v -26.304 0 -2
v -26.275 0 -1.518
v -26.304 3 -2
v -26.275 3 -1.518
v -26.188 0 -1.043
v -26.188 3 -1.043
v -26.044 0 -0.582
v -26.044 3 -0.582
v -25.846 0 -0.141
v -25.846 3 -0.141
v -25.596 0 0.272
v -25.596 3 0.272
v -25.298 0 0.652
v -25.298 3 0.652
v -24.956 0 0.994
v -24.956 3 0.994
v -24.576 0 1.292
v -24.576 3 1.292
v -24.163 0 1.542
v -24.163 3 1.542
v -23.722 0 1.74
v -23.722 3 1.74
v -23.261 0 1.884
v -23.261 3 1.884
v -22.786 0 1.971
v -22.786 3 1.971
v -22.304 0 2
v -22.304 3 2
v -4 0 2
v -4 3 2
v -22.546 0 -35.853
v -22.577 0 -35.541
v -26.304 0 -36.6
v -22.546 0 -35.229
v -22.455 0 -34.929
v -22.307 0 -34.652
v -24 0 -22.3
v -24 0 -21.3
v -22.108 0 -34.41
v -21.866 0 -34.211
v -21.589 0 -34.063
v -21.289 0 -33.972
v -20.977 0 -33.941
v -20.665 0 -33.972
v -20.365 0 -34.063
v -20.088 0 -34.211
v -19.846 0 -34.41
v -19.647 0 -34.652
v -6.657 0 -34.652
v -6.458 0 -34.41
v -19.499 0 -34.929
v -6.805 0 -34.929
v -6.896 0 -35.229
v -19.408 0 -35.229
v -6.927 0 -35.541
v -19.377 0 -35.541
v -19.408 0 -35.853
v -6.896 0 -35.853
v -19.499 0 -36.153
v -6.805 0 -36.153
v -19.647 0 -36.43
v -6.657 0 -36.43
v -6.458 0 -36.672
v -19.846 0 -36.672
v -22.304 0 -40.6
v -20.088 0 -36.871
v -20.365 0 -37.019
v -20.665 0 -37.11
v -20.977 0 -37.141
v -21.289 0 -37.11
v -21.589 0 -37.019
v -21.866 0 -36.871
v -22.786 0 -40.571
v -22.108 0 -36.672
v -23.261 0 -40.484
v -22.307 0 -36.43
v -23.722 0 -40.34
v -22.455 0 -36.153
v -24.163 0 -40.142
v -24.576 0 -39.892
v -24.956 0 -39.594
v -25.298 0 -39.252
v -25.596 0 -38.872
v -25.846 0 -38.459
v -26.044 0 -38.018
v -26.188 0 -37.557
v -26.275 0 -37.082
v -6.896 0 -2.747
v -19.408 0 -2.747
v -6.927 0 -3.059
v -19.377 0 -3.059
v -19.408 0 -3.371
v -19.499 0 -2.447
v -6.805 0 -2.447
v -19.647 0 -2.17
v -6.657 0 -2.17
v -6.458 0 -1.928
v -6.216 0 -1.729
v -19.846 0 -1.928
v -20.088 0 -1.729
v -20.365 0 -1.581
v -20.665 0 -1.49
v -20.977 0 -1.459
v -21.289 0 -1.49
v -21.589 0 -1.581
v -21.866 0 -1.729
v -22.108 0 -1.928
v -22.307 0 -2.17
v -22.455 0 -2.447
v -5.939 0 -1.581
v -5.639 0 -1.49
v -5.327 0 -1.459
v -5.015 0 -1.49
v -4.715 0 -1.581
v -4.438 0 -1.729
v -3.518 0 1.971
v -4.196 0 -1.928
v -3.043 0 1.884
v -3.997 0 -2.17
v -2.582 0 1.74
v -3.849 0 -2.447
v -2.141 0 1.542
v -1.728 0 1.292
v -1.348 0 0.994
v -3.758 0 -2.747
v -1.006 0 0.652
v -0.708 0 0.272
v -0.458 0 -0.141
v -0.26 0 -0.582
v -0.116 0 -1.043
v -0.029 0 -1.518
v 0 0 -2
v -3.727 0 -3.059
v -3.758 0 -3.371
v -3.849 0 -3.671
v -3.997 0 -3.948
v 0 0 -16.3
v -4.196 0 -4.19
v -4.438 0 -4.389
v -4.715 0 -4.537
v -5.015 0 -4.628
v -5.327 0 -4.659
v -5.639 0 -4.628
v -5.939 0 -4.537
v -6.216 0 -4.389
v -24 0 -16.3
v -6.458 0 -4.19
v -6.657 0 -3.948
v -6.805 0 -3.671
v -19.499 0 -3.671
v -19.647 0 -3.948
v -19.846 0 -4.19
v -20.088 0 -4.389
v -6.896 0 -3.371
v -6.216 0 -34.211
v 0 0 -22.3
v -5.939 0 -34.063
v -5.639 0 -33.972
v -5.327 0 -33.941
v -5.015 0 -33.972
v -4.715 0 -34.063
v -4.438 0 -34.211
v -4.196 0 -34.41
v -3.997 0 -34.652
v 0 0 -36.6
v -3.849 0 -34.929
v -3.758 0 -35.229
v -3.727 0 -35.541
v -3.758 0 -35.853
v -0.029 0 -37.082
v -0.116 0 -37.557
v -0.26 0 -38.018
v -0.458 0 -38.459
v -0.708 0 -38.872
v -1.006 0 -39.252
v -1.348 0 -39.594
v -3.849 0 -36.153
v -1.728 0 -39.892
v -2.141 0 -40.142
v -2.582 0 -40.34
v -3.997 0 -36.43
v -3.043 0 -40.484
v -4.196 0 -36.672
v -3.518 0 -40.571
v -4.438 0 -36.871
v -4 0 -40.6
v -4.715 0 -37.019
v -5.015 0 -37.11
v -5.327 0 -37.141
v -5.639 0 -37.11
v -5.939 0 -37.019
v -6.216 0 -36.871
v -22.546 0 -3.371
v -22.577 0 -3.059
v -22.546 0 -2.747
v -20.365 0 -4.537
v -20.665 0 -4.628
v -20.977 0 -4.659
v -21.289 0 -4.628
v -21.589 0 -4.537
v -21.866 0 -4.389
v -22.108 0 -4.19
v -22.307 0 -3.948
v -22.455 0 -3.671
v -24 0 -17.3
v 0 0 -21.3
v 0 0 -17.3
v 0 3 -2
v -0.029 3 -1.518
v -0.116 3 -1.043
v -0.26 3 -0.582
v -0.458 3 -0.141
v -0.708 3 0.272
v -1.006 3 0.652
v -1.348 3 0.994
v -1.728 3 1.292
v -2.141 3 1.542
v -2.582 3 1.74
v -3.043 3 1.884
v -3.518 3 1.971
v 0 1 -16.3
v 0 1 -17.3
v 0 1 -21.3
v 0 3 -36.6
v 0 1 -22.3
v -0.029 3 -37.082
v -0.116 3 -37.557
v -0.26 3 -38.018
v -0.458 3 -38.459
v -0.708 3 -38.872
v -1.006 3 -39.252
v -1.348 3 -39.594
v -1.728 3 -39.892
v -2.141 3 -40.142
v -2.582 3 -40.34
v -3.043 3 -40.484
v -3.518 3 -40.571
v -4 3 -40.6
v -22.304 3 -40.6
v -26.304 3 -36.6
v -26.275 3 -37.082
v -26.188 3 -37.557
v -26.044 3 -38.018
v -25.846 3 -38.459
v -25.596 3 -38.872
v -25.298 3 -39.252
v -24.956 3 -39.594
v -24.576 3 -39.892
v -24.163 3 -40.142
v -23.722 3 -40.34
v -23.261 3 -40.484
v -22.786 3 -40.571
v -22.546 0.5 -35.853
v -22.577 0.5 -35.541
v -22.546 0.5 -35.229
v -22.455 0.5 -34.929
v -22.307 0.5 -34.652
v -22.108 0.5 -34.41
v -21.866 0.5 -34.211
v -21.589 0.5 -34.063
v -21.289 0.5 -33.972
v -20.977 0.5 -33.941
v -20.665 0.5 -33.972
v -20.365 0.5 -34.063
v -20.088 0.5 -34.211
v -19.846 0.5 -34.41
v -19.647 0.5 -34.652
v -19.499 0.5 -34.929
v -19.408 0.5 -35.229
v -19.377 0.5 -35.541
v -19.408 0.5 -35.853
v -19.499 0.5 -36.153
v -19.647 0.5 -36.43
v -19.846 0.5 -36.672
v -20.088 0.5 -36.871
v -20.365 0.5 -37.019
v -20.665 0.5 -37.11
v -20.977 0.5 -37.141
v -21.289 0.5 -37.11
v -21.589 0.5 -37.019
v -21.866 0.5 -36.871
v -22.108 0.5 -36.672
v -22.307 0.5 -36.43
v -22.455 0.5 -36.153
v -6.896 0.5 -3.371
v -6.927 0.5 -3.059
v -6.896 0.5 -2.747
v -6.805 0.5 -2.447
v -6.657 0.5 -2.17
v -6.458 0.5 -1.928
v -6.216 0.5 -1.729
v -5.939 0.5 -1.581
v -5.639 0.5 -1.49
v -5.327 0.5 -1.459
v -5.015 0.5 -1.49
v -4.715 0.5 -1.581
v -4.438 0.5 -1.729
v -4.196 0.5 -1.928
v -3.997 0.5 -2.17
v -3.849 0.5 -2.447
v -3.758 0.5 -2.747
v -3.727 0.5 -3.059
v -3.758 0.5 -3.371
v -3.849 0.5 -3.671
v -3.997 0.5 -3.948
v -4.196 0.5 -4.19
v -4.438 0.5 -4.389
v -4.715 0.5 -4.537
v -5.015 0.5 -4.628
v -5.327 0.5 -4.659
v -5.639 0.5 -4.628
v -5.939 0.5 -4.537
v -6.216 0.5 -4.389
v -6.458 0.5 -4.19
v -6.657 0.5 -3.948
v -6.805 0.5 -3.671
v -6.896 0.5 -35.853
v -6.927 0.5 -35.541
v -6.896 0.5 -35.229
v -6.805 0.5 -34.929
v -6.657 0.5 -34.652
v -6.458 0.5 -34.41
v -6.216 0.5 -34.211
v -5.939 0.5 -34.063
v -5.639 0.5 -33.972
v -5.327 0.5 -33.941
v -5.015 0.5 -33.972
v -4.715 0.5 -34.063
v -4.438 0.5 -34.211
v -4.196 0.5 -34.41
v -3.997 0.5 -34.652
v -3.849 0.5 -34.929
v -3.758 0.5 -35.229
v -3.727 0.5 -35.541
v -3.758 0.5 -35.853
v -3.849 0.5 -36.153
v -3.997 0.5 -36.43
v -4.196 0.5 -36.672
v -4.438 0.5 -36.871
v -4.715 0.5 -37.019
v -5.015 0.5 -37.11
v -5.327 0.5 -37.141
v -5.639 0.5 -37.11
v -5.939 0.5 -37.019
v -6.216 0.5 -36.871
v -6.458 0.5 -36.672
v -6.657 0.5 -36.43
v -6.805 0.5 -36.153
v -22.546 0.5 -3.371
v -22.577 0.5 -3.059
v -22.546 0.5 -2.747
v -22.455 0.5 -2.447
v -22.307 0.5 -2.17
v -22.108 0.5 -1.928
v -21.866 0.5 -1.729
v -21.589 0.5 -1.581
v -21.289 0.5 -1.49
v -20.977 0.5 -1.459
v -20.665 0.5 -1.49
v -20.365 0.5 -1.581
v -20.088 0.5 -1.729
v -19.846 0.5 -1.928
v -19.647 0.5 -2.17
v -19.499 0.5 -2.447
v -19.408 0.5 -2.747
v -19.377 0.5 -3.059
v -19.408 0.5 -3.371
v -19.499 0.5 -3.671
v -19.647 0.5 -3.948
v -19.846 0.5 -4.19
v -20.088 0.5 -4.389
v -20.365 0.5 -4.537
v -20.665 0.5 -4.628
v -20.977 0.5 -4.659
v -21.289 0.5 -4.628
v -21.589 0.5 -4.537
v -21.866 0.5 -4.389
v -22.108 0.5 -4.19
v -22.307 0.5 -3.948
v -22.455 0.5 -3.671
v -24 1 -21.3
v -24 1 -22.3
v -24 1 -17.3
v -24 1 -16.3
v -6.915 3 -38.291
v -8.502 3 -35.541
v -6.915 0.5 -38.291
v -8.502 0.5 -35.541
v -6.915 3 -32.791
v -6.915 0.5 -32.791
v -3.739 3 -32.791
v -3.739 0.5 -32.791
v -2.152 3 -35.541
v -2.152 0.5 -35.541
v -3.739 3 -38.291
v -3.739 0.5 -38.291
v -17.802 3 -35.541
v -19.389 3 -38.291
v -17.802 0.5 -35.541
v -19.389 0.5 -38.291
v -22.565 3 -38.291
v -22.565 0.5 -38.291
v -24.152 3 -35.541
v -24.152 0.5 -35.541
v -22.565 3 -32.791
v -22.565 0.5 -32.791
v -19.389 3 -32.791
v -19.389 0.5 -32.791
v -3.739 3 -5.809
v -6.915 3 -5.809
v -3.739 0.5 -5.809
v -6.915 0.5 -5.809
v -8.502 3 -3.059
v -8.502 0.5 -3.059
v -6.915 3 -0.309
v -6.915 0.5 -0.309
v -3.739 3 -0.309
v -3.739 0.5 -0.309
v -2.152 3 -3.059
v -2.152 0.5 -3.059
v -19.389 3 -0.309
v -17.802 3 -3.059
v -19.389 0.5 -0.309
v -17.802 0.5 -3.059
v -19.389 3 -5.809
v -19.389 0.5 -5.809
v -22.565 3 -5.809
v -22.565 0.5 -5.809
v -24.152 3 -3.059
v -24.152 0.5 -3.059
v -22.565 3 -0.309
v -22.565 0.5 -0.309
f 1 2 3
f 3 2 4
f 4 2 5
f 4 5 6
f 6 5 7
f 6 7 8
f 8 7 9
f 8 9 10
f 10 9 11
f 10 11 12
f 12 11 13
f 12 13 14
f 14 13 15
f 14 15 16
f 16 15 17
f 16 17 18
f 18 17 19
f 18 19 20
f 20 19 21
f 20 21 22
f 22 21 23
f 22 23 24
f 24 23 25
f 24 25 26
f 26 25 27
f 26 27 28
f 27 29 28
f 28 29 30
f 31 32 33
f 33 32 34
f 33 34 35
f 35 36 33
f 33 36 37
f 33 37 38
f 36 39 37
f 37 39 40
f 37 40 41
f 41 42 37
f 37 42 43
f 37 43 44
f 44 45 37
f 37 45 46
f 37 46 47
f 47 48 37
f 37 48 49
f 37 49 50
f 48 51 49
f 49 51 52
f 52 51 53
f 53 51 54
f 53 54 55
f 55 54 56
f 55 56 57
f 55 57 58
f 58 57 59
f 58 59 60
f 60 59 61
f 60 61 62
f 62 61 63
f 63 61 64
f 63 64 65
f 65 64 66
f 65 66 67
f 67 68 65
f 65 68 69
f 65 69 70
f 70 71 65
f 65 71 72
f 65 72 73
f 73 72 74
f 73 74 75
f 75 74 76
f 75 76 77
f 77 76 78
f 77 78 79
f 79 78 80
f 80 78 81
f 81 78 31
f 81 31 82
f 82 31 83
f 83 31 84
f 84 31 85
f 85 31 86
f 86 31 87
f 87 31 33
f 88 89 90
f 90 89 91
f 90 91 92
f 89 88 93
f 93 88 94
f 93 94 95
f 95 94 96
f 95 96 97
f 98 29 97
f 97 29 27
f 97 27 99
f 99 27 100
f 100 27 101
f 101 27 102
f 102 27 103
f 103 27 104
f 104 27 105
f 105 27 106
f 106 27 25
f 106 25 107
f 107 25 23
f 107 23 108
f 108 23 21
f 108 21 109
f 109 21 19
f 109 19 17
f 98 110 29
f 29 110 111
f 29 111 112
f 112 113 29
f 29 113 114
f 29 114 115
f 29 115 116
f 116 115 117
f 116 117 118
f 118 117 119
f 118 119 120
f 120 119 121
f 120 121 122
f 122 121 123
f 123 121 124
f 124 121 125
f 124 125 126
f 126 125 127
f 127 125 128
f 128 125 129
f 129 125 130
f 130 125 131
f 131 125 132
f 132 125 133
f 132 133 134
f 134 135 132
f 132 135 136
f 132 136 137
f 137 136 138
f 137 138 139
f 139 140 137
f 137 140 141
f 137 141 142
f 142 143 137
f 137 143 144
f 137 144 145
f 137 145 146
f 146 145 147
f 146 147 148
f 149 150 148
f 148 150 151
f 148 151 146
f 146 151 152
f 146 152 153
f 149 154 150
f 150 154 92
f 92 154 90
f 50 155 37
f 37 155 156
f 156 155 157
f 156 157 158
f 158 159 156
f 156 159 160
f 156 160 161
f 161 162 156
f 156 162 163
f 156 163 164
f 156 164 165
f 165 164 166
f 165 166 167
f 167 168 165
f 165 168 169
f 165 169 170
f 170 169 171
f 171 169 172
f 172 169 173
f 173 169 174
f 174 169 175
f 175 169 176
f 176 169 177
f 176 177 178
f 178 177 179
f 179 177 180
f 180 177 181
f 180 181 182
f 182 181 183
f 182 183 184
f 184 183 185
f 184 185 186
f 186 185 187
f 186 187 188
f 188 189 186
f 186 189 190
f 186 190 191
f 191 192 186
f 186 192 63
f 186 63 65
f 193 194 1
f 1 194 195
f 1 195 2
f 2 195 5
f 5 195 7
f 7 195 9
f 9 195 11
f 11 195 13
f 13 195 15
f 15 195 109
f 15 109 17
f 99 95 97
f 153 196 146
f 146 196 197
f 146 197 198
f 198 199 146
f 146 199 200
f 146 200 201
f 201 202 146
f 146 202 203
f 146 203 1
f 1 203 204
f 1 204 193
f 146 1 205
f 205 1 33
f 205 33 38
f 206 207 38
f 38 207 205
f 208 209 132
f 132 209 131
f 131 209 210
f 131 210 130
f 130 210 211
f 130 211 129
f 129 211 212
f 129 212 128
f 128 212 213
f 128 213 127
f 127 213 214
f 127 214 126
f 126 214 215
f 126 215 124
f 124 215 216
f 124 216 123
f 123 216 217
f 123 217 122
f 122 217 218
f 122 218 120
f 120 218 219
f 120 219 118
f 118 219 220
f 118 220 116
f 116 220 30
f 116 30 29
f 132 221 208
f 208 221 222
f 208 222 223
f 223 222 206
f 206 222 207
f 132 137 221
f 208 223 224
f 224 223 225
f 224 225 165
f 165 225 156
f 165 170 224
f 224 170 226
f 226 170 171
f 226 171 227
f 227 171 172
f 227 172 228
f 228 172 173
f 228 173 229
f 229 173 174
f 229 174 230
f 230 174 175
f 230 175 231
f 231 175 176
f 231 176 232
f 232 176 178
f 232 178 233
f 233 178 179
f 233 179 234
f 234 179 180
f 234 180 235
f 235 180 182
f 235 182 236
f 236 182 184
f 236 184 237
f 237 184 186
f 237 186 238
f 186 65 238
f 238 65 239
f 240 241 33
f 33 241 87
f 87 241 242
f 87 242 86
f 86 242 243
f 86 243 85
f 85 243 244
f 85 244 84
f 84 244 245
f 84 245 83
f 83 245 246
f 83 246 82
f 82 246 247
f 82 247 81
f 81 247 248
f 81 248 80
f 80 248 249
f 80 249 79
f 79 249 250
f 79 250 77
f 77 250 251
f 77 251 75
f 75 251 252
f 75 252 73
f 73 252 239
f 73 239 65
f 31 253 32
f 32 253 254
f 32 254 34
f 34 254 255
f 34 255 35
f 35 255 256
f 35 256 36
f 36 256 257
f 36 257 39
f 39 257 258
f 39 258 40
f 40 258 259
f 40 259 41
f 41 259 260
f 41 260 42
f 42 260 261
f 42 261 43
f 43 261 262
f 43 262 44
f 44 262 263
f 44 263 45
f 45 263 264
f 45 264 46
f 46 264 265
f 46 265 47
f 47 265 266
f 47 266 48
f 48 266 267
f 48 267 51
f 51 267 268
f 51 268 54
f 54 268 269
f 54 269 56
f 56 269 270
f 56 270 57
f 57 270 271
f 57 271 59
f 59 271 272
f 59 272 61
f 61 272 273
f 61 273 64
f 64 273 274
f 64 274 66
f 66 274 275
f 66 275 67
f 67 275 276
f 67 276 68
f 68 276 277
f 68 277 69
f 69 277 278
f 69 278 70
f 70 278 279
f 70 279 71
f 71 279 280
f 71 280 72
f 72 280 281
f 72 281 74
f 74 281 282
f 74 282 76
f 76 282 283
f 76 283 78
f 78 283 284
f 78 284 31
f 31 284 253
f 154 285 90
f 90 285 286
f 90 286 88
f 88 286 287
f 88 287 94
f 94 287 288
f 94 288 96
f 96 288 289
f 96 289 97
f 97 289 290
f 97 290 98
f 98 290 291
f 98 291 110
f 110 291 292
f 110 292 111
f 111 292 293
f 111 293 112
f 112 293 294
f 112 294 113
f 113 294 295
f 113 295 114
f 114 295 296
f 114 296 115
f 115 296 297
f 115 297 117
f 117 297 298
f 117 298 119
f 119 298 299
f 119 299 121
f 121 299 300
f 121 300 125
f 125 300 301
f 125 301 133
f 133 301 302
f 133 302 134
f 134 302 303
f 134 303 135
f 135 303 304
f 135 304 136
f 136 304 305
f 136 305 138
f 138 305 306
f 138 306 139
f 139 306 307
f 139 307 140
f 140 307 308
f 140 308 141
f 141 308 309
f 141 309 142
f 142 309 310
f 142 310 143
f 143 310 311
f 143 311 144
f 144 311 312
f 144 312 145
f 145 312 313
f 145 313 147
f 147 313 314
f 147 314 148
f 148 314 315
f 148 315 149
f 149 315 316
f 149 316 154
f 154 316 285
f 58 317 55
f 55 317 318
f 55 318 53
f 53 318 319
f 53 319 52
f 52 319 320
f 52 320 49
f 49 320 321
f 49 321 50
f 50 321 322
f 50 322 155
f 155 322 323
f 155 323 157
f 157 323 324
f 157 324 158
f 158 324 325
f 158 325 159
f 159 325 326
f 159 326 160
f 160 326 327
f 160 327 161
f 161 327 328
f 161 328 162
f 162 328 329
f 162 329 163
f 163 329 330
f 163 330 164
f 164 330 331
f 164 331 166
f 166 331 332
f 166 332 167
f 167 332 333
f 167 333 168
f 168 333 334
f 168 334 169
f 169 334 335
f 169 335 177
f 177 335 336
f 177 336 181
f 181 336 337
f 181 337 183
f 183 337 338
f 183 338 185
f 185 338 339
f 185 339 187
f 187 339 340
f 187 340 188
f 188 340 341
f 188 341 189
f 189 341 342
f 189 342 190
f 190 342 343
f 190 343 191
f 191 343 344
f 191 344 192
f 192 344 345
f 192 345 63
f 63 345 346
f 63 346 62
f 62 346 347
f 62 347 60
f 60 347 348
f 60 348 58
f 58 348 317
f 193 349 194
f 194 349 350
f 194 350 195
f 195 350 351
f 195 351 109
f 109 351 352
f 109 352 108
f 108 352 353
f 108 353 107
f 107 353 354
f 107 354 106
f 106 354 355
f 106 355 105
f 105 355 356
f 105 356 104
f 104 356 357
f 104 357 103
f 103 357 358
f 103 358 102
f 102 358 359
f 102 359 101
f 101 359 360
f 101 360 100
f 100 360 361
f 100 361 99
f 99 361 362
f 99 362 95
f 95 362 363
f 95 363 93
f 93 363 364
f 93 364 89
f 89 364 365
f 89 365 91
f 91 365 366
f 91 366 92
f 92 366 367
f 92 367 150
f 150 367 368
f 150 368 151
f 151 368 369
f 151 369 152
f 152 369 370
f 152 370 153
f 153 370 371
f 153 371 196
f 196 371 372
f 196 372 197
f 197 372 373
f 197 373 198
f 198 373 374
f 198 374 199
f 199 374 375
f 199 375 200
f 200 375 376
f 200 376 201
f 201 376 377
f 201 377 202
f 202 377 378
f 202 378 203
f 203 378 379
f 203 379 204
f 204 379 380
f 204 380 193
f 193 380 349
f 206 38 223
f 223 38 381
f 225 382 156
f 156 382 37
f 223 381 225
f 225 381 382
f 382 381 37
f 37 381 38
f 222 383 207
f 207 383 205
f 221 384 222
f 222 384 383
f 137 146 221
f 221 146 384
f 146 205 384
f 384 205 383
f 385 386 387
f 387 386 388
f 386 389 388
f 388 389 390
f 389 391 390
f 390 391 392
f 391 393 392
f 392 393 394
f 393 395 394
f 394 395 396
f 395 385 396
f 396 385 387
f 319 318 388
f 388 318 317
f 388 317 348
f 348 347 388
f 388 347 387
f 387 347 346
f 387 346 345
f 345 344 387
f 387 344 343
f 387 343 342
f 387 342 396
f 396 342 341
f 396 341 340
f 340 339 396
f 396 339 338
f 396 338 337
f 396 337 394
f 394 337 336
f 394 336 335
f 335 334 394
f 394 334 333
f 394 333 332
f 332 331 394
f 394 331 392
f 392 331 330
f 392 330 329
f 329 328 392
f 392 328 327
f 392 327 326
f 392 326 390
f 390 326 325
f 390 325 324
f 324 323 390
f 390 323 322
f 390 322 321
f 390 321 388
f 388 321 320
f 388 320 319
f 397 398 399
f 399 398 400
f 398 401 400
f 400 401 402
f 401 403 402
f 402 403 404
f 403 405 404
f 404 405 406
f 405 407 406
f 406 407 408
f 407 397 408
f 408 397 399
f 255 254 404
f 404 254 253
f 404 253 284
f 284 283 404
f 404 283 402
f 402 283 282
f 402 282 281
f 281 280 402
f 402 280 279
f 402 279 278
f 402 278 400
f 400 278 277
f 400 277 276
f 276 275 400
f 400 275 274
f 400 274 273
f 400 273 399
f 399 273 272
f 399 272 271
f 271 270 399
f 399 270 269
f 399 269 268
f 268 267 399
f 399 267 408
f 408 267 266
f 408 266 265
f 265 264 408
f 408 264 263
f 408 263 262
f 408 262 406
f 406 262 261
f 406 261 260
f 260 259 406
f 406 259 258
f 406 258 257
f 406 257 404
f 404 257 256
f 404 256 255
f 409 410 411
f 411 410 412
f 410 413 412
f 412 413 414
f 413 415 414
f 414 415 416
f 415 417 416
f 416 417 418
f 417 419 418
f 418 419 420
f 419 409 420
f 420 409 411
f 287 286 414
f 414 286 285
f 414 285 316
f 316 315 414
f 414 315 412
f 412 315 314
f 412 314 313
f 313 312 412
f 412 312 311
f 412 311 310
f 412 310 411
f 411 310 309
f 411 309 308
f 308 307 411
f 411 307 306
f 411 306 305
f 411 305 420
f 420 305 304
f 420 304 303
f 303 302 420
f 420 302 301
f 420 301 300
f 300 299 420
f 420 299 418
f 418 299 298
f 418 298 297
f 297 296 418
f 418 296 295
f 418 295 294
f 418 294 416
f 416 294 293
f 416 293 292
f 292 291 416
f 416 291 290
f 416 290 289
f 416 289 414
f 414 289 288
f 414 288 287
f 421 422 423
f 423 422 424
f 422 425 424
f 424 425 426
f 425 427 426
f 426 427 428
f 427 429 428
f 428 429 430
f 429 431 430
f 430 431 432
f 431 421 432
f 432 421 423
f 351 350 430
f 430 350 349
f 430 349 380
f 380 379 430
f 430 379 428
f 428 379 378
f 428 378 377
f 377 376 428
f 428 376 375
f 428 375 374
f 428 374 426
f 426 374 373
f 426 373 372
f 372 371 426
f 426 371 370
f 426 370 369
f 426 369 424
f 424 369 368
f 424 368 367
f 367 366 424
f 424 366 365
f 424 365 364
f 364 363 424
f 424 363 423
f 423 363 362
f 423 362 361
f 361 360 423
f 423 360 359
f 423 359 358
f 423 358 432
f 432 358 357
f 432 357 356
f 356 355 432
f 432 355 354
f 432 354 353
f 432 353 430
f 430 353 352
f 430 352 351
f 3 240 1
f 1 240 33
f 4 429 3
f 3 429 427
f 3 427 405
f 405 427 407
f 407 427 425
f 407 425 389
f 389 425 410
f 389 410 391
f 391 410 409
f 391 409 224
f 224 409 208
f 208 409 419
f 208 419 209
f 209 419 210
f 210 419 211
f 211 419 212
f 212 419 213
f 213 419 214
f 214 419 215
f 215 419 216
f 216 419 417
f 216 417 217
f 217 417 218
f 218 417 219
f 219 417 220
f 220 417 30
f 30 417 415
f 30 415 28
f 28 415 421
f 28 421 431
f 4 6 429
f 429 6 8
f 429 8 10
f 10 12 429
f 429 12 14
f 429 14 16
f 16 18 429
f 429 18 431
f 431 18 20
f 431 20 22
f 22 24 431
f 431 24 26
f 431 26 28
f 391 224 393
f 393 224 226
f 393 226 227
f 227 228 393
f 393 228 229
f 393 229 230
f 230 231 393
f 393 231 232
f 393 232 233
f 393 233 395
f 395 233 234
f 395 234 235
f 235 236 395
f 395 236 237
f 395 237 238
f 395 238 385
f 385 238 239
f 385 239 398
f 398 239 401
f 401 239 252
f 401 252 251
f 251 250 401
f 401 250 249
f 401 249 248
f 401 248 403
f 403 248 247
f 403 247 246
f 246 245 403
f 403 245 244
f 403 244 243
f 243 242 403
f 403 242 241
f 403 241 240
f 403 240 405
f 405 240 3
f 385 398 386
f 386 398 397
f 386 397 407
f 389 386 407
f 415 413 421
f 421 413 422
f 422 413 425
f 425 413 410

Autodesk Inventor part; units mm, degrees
ref_plane "YZ Plane" through (0, 0, 0) normal (1, 0, 0) x (0, 1, 0)
ref_plane "XZ Plane" through (0, 0, 0) normal (0, 1, 0) x (-1, 0, 0)
ref_plane "XY Plane" through (0, 0, 0) normal (0, 0, 1) x (1, 0, 0)
sketch "Sketch1" plane through (0, 0, 0) normal (0, 1, 0) x (-1, 0, 0)
  line L0 (0, 0) -> (26.304, 0)
  line L1 (26.304, 0) -> (26.304, -38.6)
  line L2 (26.304, -38.6) -> (0, -38.6)
  line L3 (0, -38.6) -> (0, 0)
  dimension "d0" = 38.6
  dimension "d1" = 26.304
extrude "Extrusion1" add sketch "Sketch1" along normal blind 3
sketch "Sketch2" plane through (0, 3, 0) normal (0, 1, 0) x (1, 0, 0)
  line L0 (-19.3893, 5.809) -> (-17.8016, 3.059)
  line L1 (-17.8016, 3.059) -> (-19.3893, 0.309)
  line L2 (-19.3893, 0.309) -> (-22.5647, 0.309)
  line L3 (-22.5647, 0.309) -> (-24.1524, 3.059)
  line L4 (-24.1524, 3.059) -> (-22.5647, 5.809)
  line L5 (-22.5647, 5.809) -> (-19.3893, 5.809)
  line L6 (-19.3893, 38.291) -> (-17.8016, 35.541)
  line L7 (-17.8016, 35.541) -> (-19.3893, 32.791)
  line L8 (-19.3893, 32.791) -> (-22.5647, 32.791)
  line L9 (-22.5647, 32.791) -> (-24.1524, 35.541)
  line L10 (-24.1524, 35.541) -> (-22.5647, 38.291)
  line L11 (-22.5647, 38.291) -> (-19.3893, 38.291)
  line L12 (-3.7393, 5.809) -> (-2.1516, 3.059)
  line L13 (-2.1516, 3.059) -> (-3.7393, 0.309)
  line L14 (-3.7393, 0.309) -> (-6.9147, 0.309)
  line L15 (-6.9147, 0.309) -> (-8.5024, 3.059)
  line L16 (-8.5024, 3.059) -> (-6.9147, 5.809)
  line L17 (-6.9147, 5.809) -> (-3.7393, 5.809)
  line L18 (-3.7393, 38.291) -> (-2.1516, 35.541)
  line L19 (-2.1516, 35.541) -> (-3.7393, 32.791)
  line L20 (-3.7393, 32.791) -> (-6.9147, 32.791)
  line L21 (-6.9147, 32.791) -> (-8.5024, 35.541)
  line L22 (-8.5024, 35.541) -> (-6.9147, 38.291)
  line L23 (-6.9147, 38.291) -> (-3.7393, 38.291)
  line L24 (-26.304, 0) -> (0, 0) projected
  line L25 (0, 38.6) -> (-26.304, 38.6) projected
  line L26 (0, 0) -> (0, 38.6) projected
  point P0 (-20.977, 3.059)
  point P1 (-20.977, 35.541)
  point P2 (-5.327, 3.059)
  point P3 (-5.327, 35.541)
  dimension "d4" = 5.5
  dimension "d6" = 5.5
  dimension "d7" = 5.5
  dimension "d8" = 5.5
  dimension "d9" = 32.482
  dimension "d10" = 32.482
  dimension "d11" = 15.65
  dimension "d12" = 0
  dimension "d13" = 0
  dimension "d14" = 3.059
  dimension "d15" = 5.327
  dimension "d16" = 15.65
extrude "Extrusion2" cut sketch "Sketch2" against normal blind 2.5
sketch "Sketch3" plane through (0, 0, 0) normal (1, 0, 0) x (0, 0, -1)
  line L0 (16.3, 1) -> (17.3, 1)
  line L1 (17.3, 1) -> (17.3, 0)
  line L2 (17.3, 0) -> (16.3, 0)
  line L3 (16.3, 0) -> (16.3, 1)
  line L4 (21.3, 1) -> (22.3, 1)
  line L5 (22.3, 1) -> (22.3, 0)
  line L6 (22.3, 0) -> (21.3, 0)
  line L7 (21.3, 0) -> (21.3, 1)
  line L8 (0, 0) -> (38.6, 0) projected
  line L9 (0, 0) -> (0, 3) projected
  dimension "d19" = 1
  dimension "d20" = 1
  dimension "d21" = 1
  dimension "d22" = 4
  dimension "d23" = 16.3
extrude "Extrusion3" cut sketch "Sketch3" against normal blind 24
sketch "Sketch4" plane through (0, 3, 0) normal (0, 1, 0) x (1, 0, 0)
  circle A0 centre (-20.977, 3.059) radius 1.6
  circle A1 centre (-20.977, 35.541) radius 1.6
  circle A2 centre (-5.327, 35.541) radius 1.6
  circle A3 centre (-5.327, 3.059) radius 1.6
  line L0 (-19.3893, 0.309) -> (-22.5647, 0.309) projected
  line L1 (-3.7393, 0.309) -> (-6.9147, 0.309) projected
  line L2 (-22.5647, 38.291) -> (-19.3893, 38.291) projected
  line L3 (-6.9147, 38.291) -> (-3.7393, 38.291) projected
  line L4 (-24.1524, 3.059) -> (-22.5647, 5.809) projected
  line L5 (-22.5647, 32.791) -> (-24.1524, 35.541) projected
  line L6 (-3.7393, 5.809) -> (-2.1516, 3.059) projected
  line L7 (-3.7393, 38.291) -> (-2.1516, 35.541) projected
  point P0 (0, 0)
  dimension "d26" = 2.75
  dimension "d27" = 2.75
  dimension "d28" = 2.75
  dimension "d29" = 2.75
  dimension "d30" = 2.75
  dimension "d31" = 2.75
  dimension "d32" = 2.75
  dimension "d33" = 2.75
  dimension "d34" = 3.2
  dimension "d35" = 3.2
  dimension "d36" = 3.2
  dimension "d37" = 3.2
extrude "Extrusion4" cut sketch "Sketch4" against normal through all
sketch "Sketch5" plane through (0, 0, -38.6) normal (0, 0, -1) x (-1, 0, 0)
  line L0 (0, 0) -> (24, 0) projected
  line L1 (0, 0) -> (26.304, 0)
  line L2 (26.304, 0) -> (26.304, 3)
  line L3 (26.304, 3) -> (0, 3)
  line L4 (0, 3) -> (0, 0)
extrude "Extrusion5" add sketch "Sketch5" along normal blind 2
sketch "Sketch6" plane through (-26.304, 0, 0) normal (0, 0, 1) x (1, 0, 0)
  line L0 (2.304, 0) -> (26.304, 0) projected
  line L1 (26.304, 0) -> (0, 0)
  line L2 (0, 0) -> (0, 3)
  line L3 (0, 3) -> (26.304, 3)
  line L4 (26.304, 3) -> (26.304, 0)
extrude "Extrusion6" add sketch "Sketch6" along normal blind 2
fillet "Fillet1" radius 4 4 edges at (-26.304, 1.5, -40.6) (0, 1.5, -40.6) (0, 1.5, 2) (-26.304, 1.5, 2)
properties part number "LED_COVER"
